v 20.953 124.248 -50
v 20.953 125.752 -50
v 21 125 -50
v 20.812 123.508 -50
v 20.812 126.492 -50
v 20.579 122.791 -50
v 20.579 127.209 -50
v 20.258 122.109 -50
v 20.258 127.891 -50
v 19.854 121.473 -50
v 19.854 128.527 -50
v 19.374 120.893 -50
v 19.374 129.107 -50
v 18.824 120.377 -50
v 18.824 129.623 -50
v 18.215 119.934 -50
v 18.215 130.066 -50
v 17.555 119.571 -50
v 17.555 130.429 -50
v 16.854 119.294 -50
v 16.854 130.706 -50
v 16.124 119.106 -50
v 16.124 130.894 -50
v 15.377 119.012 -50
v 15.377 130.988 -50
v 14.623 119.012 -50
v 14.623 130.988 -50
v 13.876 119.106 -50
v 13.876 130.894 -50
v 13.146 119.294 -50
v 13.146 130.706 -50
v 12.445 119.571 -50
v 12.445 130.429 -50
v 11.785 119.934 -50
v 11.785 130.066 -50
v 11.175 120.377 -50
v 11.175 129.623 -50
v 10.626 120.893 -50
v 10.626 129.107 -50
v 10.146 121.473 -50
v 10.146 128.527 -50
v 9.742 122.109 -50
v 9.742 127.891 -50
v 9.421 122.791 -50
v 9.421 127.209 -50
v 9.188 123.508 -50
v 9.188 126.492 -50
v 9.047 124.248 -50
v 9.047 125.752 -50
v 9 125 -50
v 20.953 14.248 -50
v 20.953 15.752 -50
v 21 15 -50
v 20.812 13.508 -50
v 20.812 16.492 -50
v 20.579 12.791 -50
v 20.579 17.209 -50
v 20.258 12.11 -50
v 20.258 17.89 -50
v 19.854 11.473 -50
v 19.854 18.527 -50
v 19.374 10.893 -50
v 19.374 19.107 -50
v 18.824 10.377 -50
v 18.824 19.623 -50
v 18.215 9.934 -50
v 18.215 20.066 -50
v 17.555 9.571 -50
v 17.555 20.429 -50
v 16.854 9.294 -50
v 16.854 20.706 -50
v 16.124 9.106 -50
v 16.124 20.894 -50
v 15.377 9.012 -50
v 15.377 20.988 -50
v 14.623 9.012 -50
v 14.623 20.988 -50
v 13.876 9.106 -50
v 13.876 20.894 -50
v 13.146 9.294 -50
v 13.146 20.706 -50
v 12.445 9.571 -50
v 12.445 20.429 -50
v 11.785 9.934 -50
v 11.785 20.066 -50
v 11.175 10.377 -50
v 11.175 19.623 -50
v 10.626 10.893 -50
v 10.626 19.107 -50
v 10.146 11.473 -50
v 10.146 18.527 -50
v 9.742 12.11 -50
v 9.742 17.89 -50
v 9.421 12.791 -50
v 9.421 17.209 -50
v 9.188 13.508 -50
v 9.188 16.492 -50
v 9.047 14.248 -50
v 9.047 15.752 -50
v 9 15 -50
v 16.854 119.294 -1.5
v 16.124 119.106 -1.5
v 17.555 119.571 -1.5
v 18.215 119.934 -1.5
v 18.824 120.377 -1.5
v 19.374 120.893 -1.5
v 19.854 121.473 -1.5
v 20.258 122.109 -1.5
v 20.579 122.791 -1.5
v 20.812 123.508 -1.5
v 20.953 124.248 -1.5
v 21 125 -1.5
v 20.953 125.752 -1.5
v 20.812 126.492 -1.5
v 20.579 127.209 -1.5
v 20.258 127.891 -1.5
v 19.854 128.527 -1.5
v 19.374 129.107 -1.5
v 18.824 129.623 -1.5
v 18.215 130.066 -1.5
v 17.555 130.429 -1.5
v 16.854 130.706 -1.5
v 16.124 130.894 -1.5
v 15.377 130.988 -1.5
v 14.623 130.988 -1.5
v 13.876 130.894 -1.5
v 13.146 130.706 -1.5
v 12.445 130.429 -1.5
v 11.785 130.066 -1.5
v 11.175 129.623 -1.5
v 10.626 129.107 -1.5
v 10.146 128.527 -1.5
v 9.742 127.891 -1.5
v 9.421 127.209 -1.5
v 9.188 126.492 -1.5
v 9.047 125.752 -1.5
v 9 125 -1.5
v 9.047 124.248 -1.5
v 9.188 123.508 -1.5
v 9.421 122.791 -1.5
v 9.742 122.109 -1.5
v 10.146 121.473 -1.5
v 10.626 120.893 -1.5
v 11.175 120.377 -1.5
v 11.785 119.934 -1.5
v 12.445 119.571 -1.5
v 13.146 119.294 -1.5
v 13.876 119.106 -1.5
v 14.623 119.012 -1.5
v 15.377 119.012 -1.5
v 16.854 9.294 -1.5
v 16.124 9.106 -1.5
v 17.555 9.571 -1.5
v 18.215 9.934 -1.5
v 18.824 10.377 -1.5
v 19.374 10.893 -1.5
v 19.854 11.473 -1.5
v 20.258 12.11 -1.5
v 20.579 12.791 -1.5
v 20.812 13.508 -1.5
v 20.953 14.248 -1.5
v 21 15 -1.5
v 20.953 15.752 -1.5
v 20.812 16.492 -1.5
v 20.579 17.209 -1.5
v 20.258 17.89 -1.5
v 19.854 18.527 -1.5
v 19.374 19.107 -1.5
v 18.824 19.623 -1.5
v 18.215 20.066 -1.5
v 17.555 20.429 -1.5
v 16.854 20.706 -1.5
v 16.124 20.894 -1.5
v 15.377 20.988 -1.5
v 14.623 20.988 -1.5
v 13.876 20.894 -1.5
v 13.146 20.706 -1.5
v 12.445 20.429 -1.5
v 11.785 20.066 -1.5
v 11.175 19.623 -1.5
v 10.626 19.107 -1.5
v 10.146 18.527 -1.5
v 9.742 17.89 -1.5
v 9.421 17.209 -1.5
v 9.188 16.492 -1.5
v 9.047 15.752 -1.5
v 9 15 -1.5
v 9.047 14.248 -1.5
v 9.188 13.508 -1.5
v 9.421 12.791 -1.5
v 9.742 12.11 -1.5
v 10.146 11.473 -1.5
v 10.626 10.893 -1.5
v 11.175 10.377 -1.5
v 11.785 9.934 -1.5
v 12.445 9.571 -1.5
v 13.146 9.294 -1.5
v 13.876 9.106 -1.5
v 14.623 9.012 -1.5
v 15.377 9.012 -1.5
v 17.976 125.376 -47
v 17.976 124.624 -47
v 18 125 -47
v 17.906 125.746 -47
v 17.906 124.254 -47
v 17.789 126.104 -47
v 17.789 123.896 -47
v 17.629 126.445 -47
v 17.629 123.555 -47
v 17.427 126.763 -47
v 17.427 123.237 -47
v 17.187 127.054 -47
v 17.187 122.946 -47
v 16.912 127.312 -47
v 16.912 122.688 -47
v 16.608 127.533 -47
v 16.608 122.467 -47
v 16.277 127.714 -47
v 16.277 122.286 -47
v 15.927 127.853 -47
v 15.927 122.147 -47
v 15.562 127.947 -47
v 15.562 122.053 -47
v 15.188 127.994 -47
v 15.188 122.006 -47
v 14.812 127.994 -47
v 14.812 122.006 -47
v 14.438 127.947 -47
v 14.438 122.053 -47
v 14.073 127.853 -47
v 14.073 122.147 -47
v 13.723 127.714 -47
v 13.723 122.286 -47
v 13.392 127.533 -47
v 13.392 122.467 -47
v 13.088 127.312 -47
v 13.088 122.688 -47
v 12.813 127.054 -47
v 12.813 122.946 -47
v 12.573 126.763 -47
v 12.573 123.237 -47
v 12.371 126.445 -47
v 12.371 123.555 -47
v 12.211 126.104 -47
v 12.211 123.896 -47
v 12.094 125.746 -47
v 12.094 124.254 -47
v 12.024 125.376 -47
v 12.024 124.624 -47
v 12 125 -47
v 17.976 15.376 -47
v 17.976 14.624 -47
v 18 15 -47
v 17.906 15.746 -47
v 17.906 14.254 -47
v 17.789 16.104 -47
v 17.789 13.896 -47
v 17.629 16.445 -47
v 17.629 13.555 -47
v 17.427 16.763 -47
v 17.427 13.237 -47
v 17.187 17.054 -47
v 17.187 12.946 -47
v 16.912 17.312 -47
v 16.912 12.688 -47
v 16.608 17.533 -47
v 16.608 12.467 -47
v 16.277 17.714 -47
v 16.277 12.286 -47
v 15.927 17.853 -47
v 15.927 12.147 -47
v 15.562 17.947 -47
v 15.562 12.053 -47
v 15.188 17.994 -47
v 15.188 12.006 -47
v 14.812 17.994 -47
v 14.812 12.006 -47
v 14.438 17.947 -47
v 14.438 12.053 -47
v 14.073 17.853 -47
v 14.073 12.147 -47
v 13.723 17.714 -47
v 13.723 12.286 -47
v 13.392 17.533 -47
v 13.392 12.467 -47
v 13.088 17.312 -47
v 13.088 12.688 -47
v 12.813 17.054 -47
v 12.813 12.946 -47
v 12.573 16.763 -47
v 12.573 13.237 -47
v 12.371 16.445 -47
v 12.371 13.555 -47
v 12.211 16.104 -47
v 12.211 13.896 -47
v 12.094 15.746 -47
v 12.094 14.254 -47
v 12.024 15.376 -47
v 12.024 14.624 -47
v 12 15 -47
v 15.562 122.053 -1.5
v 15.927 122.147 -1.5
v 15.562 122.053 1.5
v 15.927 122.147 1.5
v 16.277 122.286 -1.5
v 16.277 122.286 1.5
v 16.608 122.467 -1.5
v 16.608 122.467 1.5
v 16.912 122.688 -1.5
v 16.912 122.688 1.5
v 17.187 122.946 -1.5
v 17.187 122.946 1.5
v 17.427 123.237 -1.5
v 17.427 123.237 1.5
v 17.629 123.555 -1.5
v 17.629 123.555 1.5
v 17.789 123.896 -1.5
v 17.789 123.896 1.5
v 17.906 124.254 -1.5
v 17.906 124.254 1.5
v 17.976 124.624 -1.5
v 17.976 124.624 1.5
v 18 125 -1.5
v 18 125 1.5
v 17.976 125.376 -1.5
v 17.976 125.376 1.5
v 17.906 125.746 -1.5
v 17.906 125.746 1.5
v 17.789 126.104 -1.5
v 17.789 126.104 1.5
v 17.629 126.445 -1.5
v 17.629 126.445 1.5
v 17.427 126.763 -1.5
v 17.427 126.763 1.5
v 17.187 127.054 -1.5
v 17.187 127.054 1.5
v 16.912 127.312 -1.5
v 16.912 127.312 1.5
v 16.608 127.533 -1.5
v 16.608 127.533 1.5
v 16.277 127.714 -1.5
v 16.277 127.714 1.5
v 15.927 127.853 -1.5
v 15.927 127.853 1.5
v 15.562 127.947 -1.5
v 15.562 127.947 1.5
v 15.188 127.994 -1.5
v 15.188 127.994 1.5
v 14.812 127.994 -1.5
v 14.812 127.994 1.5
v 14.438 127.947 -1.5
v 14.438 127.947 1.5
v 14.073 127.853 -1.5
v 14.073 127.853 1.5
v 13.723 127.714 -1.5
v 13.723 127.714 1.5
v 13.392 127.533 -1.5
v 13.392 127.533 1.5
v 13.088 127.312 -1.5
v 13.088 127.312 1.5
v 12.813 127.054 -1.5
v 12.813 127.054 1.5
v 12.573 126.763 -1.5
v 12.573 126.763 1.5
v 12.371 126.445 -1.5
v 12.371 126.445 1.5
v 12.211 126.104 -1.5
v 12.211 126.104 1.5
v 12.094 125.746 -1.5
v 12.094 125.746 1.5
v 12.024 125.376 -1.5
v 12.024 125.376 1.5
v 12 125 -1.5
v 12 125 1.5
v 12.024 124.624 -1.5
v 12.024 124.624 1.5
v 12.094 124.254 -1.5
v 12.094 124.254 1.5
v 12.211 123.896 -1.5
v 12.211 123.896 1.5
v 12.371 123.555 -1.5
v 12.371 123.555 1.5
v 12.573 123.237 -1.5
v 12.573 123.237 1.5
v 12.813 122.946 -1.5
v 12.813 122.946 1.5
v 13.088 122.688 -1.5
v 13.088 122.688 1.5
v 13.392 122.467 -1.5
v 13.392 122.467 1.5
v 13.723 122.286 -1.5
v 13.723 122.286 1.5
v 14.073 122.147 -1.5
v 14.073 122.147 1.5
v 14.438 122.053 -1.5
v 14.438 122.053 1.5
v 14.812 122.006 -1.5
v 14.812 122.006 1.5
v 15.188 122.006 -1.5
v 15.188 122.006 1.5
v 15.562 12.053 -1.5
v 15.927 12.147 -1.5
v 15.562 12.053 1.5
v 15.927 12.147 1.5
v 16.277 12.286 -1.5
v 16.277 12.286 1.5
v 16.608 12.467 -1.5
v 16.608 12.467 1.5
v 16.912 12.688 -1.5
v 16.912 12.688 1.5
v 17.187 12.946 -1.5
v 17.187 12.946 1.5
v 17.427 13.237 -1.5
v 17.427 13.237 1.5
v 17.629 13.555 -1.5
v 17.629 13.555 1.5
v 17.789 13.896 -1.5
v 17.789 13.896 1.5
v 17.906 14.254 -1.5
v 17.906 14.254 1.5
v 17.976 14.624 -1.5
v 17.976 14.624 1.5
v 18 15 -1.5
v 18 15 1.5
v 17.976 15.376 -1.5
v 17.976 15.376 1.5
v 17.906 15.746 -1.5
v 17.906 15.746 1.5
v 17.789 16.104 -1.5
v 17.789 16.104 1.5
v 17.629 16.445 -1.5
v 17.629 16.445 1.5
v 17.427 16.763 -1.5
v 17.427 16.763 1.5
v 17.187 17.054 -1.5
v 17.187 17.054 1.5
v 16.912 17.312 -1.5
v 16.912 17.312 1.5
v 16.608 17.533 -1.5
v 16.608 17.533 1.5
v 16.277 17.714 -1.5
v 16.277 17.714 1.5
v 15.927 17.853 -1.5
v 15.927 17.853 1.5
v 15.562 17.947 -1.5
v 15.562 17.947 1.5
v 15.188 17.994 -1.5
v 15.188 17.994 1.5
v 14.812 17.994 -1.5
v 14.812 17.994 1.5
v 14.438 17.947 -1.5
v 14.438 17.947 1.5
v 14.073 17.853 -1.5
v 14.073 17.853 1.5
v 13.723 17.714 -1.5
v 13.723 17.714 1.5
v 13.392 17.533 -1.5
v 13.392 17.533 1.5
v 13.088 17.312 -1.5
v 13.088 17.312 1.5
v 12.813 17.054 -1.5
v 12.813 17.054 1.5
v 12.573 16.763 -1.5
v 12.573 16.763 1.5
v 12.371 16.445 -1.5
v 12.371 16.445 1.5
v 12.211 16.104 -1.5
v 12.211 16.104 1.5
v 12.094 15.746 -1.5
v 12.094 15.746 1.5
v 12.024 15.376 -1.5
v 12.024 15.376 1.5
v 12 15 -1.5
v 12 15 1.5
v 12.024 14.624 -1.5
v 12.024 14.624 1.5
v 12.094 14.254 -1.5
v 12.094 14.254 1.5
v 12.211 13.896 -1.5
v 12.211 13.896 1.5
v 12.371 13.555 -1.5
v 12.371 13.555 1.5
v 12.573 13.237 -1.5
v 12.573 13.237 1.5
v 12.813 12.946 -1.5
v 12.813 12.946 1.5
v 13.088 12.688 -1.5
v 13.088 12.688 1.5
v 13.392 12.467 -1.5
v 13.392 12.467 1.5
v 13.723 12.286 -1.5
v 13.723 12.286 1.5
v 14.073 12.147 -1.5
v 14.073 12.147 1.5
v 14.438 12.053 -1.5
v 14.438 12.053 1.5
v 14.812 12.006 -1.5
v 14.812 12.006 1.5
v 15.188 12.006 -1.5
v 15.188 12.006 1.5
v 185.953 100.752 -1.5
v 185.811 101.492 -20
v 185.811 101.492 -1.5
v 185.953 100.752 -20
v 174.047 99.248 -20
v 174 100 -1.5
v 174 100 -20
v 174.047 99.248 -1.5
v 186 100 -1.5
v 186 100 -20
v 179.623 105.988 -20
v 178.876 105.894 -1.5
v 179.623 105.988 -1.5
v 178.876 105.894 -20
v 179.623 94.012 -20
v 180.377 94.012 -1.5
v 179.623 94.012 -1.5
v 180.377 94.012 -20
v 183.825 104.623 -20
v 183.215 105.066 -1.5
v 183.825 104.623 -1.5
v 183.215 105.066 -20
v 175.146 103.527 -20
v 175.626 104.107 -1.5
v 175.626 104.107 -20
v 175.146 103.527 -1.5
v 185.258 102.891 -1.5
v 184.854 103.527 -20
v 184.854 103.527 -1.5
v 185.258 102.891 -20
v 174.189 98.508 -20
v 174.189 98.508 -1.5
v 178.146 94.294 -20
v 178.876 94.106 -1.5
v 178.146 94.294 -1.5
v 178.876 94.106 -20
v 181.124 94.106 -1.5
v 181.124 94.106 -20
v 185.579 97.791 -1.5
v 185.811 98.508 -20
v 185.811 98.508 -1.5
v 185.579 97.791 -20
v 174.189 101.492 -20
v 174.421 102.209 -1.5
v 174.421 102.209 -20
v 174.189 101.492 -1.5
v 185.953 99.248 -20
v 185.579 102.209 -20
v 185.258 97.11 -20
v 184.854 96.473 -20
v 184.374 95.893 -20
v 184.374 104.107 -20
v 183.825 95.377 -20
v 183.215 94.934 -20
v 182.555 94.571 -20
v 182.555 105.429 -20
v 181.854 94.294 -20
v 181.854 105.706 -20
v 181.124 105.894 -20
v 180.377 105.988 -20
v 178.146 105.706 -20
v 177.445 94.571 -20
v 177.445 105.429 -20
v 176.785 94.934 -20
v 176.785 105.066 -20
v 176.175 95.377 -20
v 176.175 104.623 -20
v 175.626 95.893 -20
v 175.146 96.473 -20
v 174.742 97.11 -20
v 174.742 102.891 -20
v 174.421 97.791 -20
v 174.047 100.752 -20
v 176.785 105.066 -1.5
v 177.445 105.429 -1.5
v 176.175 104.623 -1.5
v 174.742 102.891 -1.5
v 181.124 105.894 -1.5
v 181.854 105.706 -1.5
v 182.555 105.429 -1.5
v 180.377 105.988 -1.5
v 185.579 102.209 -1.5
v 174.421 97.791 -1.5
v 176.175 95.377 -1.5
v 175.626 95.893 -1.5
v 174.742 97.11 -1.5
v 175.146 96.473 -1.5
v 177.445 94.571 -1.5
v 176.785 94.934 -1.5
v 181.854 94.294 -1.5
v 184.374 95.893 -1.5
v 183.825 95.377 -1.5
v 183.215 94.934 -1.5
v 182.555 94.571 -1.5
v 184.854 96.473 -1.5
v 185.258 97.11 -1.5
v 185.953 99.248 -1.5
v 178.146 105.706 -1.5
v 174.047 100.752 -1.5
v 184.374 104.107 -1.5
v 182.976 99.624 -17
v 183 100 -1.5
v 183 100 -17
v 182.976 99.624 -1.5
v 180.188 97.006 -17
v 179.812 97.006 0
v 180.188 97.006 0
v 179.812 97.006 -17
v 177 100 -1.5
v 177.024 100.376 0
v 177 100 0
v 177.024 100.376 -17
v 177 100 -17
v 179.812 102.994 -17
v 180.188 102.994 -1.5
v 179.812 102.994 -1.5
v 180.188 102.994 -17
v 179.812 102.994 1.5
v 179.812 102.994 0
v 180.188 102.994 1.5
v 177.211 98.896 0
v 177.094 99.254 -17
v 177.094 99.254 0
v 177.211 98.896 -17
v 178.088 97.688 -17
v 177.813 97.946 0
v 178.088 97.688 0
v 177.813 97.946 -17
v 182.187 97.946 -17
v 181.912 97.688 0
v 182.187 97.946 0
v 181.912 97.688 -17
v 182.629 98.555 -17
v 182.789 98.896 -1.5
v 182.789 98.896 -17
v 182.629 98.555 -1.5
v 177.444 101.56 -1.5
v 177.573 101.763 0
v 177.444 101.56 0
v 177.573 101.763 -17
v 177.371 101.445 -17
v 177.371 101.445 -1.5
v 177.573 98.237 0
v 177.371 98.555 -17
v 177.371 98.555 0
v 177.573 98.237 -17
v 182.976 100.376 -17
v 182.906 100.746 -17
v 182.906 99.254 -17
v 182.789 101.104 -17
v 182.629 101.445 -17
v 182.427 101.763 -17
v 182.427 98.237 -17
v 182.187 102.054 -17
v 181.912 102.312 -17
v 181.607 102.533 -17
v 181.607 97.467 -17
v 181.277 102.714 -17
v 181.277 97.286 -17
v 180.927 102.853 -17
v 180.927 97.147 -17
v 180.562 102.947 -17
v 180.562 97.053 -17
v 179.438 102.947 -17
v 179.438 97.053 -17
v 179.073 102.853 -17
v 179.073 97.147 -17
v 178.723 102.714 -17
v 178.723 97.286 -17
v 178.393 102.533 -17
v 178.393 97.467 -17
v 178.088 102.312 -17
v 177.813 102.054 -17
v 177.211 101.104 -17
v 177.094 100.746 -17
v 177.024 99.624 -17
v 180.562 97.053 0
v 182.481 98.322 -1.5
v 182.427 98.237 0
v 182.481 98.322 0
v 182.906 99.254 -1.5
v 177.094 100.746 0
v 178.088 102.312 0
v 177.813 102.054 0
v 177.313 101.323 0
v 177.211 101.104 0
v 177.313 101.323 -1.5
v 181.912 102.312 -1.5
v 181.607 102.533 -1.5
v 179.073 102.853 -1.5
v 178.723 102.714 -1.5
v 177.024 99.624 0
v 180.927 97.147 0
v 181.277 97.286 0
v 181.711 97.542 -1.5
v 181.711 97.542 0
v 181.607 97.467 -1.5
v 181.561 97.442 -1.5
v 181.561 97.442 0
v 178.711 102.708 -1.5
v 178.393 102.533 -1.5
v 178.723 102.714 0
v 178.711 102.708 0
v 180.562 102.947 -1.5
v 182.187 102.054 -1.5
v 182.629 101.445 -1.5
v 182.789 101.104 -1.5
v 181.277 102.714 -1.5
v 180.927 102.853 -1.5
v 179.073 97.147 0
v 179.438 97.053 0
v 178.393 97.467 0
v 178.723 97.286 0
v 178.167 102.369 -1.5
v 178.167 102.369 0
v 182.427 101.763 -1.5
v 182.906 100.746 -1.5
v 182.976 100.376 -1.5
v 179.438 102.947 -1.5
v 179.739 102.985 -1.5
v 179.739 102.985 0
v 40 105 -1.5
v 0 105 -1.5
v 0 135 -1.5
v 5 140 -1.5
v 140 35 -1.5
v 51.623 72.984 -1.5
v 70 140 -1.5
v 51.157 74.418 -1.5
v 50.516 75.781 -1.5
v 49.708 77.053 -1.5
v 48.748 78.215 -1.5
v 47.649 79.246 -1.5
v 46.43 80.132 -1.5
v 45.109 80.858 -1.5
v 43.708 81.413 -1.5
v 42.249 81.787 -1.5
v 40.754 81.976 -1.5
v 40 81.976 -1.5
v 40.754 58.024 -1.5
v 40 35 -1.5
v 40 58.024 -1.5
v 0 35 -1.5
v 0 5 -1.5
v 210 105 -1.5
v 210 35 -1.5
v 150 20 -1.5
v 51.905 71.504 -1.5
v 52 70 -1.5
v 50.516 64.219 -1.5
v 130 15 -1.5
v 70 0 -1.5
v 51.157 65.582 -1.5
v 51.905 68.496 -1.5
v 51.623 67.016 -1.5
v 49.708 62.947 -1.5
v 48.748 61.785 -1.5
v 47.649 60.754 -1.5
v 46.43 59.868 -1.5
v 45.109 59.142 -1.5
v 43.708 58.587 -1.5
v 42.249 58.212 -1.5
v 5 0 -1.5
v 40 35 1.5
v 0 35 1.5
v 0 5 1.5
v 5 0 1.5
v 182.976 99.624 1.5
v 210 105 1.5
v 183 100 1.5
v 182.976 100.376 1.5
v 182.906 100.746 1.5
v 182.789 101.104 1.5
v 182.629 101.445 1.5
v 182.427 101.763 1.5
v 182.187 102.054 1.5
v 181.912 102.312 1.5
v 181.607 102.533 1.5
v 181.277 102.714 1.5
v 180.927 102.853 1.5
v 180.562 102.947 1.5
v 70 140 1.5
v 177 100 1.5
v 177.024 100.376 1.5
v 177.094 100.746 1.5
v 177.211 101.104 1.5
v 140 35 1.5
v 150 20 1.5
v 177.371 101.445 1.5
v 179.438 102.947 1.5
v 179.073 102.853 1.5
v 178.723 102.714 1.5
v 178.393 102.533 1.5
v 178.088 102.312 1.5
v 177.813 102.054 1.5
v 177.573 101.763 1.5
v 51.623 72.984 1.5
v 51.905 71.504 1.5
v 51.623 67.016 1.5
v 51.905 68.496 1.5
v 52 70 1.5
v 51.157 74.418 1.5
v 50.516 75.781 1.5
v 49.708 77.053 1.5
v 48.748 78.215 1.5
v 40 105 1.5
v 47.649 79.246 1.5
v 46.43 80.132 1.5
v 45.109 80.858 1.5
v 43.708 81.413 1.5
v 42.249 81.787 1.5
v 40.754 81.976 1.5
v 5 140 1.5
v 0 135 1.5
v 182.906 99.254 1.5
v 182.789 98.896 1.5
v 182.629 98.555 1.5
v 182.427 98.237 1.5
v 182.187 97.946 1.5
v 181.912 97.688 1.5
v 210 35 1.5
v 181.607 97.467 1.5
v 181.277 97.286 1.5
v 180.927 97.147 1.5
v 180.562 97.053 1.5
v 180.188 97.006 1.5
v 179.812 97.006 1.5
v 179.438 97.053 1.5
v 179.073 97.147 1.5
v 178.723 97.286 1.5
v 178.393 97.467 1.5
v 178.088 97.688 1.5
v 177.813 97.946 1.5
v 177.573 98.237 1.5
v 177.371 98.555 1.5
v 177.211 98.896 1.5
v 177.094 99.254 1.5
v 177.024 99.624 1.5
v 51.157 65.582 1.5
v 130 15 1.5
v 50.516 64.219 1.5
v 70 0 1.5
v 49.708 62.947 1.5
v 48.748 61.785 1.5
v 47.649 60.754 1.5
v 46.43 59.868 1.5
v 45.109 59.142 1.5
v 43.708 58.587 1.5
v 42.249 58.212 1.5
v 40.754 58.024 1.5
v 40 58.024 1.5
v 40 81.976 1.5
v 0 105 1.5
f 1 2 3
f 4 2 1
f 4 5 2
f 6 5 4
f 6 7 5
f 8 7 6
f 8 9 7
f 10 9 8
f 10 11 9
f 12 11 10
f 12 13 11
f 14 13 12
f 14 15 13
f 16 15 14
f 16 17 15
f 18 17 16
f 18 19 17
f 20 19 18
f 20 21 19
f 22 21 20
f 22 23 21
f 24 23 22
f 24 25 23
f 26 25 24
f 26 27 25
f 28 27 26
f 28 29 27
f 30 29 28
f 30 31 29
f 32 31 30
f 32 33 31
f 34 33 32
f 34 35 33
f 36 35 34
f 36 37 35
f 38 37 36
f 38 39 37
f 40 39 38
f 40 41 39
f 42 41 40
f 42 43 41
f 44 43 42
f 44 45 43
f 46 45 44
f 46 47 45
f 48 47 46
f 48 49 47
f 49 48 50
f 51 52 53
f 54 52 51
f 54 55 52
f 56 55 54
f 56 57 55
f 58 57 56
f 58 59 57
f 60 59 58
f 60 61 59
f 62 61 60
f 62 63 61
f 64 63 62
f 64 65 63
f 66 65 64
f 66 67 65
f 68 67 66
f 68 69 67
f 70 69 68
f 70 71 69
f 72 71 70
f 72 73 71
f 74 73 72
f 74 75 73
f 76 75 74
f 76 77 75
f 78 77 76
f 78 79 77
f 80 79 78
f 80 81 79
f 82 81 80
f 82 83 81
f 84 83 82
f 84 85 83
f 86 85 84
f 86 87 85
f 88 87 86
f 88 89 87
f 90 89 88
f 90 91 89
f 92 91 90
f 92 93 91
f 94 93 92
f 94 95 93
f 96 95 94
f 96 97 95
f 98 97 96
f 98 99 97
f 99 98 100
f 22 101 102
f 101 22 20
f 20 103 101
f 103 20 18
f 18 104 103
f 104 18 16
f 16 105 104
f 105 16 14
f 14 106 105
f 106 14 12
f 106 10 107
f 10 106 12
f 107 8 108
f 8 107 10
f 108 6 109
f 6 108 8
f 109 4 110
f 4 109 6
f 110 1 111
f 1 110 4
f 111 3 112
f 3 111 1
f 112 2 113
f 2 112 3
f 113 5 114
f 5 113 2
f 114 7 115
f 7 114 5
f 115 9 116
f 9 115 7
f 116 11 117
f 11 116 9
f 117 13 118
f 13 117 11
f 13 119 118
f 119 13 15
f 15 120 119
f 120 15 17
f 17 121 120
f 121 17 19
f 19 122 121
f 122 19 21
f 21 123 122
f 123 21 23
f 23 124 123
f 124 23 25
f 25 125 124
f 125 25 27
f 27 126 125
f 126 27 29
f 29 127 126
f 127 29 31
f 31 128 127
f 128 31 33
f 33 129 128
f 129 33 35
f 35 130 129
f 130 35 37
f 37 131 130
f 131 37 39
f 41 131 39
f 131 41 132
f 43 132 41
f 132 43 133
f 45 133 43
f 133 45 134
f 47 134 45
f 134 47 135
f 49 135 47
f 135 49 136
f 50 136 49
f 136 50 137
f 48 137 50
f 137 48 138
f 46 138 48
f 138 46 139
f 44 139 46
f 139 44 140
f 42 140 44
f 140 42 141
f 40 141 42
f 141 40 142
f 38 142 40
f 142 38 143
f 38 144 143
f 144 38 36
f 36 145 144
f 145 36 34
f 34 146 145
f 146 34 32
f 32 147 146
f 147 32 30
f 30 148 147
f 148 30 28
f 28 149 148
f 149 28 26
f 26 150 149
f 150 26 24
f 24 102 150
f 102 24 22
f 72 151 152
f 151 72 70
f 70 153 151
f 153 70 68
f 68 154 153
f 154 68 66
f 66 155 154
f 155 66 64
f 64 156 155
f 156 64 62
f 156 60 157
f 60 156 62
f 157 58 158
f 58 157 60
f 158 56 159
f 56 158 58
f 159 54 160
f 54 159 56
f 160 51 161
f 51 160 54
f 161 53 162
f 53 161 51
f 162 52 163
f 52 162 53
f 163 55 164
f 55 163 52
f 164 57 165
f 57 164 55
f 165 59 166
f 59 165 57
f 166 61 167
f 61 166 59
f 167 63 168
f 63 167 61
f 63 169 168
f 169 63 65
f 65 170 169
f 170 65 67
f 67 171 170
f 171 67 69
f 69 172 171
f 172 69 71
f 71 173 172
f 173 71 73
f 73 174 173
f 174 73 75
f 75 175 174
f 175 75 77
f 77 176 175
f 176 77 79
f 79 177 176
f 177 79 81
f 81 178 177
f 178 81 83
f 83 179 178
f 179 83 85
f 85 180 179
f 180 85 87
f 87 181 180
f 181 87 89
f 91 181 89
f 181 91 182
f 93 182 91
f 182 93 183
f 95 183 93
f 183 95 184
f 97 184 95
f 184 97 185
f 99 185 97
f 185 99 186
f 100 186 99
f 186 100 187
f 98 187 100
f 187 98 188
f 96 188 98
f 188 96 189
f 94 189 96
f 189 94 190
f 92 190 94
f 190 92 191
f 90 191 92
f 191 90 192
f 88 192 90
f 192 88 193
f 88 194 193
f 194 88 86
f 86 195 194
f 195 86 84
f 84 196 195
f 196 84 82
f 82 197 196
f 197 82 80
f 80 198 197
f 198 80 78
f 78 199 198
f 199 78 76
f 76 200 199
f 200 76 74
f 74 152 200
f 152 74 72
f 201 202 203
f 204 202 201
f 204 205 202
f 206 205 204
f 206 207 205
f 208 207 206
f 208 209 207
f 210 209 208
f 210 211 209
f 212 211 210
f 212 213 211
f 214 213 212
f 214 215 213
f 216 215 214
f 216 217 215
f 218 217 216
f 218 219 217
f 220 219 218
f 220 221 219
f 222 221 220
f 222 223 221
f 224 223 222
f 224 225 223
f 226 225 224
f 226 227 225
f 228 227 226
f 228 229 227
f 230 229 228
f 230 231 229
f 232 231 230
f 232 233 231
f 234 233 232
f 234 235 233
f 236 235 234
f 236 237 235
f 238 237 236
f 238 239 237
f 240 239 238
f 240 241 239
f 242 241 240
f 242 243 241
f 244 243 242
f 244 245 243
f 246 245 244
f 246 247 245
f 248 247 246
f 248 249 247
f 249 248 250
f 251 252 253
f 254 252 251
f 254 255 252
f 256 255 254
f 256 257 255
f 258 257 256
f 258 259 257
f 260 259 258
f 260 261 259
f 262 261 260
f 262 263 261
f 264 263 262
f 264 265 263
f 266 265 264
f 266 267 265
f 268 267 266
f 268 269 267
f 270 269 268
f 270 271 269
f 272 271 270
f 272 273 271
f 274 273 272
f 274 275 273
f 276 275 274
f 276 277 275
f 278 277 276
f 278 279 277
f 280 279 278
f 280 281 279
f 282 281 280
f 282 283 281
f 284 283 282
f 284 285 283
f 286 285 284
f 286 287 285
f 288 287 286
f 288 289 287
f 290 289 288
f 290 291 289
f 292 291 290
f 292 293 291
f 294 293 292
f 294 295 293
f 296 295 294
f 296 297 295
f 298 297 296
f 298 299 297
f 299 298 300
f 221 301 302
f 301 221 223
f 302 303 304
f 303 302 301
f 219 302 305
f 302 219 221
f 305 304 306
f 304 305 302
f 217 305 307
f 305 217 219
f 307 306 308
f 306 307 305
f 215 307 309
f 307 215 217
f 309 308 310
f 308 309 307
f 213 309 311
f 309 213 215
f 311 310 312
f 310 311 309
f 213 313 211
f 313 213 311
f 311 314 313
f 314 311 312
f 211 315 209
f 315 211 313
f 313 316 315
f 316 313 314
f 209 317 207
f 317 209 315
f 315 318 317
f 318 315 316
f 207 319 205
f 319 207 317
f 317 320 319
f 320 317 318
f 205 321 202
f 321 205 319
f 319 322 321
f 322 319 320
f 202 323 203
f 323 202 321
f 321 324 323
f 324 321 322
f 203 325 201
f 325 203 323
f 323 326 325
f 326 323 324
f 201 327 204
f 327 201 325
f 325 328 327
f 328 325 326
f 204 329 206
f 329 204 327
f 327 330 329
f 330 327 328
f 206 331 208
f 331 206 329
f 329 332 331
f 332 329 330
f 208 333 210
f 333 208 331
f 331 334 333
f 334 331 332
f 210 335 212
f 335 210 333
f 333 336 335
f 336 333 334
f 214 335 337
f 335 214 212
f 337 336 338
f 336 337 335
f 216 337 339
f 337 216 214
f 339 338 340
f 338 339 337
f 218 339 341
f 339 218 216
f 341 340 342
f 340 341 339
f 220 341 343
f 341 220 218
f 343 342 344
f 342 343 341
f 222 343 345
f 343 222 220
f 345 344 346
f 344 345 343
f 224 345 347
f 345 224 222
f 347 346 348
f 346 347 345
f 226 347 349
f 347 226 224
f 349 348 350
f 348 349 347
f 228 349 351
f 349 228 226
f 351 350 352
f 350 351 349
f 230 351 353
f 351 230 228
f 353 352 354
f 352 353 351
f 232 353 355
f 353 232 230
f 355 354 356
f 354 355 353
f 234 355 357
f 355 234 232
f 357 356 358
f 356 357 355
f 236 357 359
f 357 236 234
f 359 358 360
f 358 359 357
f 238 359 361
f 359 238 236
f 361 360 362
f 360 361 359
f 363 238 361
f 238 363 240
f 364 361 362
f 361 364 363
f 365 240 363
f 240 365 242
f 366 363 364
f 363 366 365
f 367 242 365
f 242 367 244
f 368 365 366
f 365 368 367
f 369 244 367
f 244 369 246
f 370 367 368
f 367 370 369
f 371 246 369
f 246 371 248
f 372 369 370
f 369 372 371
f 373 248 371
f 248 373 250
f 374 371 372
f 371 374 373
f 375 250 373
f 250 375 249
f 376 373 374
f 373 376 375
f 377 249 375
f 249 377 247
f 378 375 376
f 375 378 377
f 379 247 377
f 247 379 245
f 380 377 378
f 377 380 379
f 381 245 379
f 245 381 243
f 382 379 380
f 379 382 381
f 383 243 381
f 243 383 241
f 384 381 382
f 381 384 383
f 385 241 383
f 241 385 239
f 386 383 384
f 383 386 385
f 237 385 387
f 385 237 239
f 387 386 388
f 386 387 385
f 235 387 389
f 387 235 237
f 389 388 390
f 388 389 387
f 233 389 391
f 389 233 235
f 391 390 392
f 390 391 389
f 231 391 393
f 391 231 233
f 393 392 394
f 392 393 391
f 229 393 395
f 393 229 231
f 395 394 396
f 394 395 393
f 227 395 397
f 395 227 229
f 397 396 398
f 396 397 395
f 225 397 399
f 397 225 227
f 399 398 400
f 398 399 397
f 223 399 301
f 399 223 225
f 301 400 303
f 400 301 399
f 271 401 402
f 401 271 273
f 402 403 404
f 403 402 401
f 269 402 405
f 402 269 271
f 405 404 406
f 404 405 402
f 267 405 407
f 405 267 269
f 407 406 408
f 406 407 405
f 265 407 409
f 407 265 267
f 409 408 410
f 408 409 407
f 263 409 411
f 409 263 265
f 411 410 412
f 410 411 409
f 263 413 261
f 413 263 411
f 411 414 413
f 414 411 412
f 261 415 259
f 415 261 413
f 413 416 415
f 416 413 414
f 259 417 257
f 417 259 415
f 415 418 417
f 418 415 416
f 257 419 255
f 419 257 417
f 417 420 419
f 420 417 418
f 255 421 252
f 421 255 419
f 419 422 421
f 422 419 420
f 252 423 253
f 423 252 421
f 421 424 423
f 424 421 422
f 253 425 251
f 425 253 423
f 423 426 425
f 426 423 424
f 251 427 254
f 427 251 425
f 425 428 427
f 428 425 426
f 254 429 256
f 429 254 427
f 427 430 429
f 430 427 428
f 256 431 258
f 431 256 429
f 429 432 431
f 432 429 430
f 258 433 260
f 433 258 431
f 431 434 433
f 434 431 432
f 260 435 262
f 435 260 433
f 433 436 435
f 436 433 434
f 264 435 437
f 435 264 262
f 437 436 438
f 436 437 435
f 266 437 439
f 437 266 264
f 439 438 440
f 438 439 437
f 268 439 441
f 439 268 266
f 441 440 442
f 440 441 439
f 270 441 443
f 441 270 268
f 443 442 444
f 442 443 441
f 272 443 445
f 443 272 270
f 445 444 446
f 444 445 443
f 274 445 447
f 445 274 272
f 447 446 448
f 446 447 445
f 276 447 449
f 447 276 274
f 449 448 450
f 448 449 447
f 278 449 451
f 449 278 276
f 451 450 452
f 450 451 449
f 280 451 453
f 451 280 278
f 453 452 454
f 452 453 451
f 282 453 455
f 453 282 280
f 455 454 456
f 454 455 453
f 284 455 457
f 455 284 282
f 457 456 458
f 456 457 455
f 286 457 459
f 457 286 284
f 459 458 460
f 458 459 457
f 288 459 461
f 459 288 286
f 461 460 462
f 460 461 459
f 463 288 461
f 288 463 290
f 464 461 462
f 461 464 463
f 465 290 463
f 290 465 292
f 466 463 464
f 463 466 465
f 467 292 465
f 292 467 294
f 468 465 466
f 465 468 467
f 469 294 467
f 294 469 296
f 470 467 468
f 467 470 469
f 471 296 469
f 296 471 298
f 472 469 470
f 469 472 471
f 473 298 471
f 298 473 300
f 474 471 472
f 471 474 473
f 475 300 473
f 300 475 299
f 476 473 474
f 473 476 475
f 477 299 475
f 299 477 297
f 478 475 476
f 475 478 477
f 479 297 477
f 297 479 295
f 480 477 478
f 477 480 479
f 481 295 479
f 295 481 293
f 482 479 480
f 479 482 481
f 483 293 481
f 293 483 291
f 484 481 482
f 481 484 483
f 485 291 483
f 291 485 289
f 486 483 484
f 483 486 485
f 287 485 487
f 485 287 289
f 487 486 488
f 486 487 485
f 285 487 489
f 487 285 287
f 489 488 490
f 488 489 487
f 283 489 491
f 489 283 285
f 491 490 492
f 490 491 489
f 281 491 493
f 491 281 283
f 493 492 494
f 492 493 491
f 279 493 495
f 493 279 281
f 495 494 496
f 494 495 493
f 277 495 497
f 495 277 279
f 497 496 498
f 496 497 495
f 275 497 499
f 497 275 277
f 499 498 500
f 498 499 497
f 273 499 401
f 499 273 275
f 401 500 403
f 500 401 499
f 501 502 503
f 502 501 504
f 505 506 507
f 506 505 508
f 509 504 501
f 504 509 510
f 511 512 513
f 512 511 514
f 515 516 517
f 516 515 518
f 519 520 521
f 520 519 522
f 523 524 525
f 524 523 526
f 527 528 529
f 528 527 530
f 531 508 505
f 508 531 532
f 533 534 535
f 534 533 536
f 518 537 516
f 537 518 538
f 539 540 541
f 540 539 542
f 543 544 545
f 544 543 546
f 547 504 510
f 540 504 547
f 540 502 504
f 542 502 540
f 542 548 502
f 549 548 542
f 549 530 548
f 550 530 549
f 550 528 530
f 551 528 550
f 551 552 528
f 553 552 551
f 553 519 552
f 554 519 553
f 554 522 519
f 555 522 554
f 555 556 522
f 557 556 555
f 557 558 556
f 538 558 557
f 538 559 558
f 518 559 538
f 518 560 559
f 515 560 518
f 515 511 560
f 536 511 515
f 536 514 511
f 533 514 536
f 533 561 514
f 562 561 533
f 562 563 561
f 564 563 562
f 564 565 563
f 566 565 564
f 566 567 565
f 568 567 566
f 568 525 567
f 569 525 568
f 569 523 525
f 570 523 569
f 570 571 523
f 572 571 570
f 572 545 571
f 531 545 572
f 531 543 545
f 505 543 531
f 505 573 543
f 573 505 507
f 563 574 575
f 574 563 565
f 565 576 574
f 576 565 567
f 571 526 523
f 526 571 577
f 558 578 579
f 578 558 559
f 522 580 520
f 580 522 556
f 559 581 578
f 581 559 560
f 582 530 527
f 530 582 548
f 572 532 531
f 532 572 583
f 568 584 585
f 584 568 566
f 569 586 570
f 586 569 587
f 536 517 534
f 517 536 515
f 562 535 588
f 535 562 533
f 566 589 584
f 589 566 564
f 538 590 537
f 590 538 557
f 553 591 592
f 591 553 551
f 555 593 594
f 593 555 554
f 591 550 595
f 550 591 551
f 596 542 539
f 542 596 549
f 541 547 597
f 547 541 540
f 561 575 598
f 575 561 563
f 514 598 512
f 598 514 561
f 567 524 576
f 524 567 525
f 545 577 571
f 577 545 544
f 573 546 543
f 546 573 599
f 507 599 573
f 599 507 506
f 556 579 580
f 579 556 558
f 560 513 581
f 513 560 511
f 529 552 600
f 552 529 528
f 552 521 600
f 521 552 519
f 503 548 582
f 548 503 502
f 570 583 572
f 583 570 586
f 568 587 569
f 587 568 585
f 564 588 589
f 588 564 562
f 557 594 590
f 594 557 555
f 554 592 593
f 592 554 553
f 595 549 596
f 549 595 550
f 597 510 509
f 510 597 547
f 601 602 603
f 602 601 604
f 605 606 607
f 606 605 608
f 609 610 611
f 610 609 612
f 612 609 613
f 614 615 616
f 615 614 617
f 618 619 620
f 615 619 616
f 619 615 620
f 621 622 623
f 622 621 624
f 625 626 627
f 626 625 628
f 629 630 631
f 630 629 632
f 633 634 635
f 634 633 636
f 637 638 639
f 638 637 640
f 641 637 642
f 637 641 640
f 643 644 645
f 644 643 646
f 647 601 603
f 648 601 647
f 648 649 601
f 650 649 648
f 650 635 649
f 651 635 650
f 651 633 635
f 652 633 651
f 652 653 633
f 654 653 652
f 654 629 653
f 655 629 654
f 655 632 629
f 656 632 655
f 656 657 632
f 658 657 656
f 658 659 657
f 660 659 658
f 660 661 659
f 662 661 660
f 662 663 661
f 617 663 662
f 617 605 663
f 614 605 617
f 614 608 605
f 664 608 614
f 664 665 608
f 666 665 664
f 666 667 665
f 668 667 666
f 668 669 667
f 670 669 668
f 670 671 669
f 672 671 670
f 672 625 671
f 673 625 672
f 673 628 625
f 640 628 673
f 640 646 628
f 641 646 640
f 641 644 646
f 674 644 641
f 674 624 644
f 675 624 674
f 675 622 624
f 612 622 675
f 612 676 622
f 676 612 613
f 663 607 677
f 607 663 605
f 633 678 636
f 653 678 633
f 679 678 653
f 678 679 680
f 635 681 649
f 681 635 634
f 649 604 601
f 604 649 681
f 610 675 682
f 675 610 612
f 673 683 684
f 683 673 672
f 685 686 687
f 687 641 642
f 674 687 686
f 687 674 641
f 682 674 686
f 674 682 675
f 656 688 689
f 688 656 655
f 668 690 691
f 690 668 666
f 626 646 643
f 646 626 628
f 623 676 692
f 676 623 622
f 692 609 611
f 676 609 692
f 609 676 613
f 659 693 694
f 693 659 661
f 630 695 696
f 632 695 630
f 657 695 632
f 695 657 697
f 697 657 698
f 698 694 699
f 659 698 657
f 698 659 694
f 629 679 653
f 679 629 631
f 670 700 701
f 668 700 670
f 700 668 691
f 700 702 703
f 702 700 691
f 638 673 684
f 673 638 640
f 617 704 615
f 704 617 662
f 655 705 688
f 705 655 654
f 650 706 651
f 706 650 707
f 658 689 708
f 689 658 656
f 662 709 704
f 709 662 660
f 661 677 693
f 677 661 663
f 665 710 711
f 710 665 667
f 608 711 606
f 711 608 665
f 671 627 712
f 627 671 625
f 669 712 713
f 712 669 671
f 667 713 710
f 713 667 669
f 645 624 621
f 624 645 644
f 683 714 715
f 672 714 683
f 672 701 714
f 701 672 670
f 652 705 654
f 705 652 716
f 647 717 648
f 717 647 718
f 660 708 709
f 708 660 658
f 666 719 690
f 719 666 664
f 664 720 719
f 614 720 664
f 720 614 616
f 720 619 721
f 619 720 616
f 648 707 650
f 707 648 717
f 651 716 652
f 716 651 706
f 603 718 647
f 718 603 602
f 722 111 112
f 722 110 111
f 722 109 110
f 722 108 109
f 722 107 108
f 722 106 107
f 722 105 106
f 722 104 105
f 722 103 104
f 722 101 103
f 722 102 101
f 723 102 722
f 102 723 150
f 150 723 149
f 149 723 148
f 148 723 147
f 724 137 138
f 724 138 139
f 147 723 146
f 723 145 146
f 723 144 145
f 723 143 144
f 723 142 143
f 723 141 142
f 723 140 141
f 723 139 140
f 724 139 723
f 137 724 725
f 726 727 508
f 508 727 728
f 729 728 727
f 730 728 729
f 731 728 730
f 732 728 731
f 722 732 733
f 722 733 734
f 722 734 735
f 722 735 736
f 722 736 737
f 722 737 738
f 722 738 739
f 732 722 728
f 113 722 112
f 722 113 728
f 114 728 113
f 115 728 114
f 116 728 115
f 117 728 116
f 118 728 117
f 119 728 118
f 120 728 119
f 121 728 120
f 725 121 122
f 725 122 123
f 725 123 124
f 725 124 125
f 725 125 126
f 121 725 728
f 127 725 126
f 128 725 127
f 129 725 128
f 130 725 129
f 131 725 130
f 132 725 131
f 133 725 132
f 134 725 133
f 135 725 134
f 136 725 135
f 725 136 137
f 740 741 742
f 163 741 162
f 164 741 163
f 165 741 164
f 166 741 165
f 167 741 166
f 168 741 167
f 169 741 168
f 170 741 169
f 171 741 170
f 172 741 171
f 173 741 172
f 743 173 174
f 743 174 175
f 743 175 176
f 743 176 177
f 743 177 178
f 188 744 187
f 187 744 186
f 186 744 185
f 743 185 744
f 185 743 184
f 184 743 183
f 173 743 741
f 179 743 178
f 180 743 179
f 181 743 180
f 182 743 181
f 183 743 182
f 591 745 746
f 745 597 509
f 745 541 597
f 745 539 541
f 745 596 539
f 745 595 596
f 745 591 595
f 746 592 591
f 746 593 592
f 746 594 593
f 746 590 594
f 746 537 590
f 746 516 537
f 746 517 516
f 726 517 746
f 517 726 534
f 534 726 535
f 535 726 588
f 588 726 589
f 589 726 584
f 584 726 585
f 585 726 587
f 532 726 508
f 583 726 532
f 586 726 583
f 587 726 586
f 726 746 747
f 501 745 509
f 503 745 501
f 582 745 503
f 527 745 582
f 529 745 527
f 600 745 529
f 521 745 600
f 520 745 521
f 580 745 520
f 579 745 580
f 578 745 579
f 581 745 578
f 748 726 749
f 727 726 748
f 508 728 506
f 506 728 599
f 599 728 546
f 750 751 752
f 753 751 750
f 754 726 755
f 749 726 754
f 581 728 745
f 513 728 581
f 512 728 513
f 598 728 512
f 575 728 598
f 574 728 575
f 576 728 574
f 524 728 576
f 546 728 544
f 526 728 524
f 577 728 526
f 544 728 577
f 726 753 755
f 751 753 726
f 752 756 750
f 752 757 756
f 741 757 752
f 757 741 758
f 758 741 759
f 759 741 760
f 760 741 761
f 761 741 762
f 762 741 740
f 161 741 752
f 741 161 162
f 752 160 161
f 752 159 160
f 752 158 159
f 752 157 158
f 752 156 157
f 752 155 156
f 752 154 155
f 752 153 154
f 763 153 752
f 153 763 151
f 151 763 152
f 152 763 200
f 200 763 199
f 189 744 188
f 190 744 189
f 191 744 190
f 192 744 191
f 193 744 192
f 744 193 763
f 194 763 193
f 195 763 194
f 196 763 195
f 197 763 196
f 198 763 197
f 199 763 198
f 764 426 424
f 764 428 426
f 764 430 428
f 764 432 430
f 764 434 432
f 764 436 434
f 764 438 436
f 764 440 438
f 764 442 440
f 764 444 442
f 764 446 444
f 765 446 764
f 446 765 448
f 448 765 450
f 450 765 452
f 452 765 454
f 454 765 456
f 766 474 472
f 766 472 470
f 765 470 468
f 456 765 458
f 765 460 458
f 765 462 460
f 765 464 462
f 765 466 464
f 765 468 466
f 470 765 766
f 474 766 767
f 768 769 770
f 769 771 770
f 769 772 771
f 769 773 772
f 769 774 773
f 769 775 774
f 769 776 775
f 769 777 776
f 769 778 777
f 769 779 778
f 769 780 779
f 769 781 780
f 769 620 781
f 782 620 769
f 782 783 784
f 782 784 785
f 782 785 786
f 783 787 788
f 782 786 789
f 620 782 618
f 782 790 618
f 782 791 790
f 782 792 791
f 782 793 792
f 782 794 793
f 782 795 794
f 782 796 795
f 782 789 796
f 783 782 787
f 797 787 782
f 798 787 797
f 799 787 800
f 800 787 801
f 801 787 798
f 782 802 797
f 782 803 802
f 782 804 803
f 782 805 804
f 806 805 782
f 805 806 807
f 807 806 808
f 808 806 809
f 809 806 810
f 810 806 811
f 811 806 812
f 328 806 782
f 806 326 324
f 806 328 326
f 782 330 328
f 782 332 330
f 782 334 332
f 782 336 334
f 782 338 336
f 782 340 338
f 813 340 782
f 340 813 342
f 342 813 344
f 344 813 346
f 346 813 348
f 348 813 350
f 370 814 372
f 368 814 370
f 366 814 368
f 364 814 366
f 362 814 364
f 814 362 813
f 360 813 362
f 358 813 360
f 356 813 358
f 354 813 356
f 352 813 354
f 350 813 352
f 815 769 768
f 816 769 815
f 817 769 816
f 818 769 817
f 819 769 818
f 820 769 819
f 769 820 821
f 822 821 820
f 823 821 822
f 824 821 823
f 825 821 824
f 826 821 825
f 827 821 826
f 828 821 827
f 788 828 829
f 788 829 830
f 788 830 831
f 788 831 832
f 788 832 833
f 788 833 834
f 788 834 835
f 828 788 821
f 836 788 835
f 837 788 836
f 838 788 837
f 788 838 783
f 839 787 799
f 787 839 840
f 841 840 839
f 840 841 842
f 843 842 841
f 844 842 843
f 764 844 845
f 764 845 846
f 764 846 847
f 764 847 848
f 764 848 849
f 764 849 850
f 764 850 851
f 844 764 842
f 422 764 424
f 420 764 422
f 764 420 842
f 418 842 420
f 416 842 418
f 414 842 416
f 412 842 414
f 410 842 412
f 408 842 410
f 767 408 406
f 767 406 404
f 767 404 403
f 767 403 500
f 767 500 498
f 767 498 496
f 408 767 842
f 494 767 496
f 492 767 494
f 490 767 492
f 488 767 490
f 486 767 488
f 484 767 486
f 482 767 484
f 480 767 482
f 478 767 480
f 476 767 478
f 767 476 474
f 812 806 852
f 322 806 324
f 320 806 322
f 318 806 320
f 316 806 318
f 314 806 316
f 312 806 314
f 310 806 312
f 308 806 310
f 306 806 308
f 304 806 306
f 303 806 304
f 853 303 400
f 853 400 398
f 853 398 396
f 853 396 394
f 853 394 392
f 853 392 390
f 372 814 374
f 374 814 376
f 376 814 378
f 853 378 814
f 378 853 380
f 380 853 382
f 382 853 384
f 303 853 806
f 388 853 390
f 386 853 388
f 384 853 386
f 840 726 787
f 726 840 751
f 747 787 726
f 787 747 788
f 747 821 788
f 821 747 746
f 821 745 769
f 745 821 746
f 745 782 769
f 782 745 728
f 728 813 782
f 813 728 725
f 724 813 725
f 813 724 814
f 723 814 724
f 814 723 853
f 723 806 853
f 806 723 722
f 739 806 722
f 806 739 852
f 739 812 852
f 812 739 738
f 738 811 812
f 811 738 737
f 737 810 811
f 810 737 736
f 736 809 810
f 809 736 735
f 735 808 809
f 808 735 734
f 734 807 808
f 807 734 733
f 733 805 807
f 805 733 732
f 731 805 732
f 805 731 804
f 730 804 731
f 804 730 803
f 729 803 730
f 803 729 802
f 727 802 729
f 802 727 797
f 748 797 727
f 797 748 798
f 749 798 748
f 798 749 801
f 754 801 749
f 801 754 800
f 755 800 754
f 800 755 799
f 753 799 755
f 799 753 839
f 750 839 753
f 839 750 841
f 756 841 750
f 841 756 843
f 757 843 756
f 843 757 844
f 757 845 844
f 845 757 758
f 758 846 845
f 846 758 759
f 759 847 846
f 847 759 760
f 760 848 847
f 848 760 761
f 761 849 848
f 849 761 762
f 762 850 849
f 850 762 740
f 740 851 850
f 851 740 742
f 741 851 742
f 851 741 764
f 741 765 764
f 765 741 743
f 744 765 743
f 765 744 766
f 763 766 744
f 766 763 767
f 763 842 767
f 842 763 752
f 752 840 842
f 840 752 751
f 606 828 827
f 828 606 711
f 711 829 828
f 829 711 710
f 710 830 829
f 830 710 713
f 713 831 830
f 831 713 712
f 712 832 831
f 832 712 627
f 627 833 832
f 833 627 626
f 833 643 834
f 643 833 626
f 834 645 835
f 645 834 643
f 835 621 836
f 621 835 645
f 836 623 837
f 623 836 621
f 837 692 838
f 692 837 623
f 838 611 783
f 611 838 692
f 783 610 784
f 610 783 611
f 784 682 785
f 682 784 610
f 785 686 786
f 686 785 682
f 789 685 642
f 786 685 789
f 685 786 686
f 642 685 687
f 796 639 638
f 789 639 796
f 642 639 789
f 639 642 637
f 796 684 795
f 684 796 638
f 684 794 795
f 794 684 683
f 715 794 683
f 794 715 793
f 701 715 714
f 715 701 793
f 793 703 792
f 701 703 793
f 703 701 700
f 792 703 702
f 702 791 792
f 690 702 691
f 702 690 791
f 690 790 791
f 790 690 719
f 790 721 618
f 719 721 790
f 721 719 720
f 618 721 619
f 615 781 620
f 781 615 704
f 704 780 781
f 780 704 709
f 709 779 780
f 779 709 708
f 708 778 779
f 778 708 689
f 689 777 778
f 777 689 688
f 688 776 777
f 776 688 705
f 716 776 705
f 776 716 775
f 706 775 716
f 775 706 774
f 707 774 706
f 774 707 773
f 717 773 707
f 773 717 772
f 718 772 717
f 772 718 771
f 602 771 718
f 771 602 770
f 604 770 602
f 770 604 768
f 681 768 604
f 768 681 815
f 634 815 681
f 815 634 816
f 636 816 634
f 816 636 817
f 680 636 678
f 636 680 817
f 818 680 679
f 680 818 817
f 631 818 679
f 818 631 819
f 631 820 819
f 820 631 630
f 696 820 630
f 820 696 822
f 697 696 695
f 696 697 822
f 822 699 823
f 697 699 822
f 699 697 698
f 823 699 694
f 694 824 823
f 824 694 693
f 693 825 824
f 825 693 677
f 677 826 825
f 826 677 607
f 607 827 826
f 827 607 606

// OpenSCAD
// rustler-plate.scad: an electronics tray for Traxxas Rustler
// Daniel Epperson, 2015

// main surface    
linear_extrude(height = 3, center = true) 
difference() {

    // plate
    polygon(points=[[0,5],      [5,0],
                    [70,0],     [130,15],
                    [140,35],   [150,20],
                    [210,35],   [210,105],
                    [70,140],
                    [5,140],    [0,135],
                    [0,105],    [40,105],
                    [40,35],    [0,35]
    ]);
    
    // ESC hole
    translate([40, 70])
    circle(12, $fn=50);
    
    // right bolt hole
    translate([15, 15])
    circle(3, $fn=50);
    
    // left bolt hole
    translate([15, 125])
    circle(3, $fn=50);
    
    // front bolt hole
    translate([180, 100])
    circle(3, $fn=50);
}


// rear supports
difference()
{
    translate([0,0,-25])
    linear_extrude(height = 50, center = true) 
    {

        // right 
        translate([15, 15])
        circle(6, $fn=50);

        // left 
        translate([15, 125])
        circle(6, $fn=50);
    }
    translate([0,0,-22])
    linear_extrude(height = 50, center = true) 
    {

        // right tunnel
        translate([15, 15])
        circle(3, $fn=50);

        // left tunnel
        translate([15, 125])
        circle(3, $fn=50);
    }
}


// front support
difference()
{
    // front
    translate([0,0,-10])
    linear_extrude(height = 20, center = true) 
    translate([180, 100])
    circle(6, $fn=50);
    
    // front tunnel
    translate([0,0,-7])
    linear_extrude(height = 20, center = true) 
    translate([180, 100])
    circle(3, $fn=50);
}
